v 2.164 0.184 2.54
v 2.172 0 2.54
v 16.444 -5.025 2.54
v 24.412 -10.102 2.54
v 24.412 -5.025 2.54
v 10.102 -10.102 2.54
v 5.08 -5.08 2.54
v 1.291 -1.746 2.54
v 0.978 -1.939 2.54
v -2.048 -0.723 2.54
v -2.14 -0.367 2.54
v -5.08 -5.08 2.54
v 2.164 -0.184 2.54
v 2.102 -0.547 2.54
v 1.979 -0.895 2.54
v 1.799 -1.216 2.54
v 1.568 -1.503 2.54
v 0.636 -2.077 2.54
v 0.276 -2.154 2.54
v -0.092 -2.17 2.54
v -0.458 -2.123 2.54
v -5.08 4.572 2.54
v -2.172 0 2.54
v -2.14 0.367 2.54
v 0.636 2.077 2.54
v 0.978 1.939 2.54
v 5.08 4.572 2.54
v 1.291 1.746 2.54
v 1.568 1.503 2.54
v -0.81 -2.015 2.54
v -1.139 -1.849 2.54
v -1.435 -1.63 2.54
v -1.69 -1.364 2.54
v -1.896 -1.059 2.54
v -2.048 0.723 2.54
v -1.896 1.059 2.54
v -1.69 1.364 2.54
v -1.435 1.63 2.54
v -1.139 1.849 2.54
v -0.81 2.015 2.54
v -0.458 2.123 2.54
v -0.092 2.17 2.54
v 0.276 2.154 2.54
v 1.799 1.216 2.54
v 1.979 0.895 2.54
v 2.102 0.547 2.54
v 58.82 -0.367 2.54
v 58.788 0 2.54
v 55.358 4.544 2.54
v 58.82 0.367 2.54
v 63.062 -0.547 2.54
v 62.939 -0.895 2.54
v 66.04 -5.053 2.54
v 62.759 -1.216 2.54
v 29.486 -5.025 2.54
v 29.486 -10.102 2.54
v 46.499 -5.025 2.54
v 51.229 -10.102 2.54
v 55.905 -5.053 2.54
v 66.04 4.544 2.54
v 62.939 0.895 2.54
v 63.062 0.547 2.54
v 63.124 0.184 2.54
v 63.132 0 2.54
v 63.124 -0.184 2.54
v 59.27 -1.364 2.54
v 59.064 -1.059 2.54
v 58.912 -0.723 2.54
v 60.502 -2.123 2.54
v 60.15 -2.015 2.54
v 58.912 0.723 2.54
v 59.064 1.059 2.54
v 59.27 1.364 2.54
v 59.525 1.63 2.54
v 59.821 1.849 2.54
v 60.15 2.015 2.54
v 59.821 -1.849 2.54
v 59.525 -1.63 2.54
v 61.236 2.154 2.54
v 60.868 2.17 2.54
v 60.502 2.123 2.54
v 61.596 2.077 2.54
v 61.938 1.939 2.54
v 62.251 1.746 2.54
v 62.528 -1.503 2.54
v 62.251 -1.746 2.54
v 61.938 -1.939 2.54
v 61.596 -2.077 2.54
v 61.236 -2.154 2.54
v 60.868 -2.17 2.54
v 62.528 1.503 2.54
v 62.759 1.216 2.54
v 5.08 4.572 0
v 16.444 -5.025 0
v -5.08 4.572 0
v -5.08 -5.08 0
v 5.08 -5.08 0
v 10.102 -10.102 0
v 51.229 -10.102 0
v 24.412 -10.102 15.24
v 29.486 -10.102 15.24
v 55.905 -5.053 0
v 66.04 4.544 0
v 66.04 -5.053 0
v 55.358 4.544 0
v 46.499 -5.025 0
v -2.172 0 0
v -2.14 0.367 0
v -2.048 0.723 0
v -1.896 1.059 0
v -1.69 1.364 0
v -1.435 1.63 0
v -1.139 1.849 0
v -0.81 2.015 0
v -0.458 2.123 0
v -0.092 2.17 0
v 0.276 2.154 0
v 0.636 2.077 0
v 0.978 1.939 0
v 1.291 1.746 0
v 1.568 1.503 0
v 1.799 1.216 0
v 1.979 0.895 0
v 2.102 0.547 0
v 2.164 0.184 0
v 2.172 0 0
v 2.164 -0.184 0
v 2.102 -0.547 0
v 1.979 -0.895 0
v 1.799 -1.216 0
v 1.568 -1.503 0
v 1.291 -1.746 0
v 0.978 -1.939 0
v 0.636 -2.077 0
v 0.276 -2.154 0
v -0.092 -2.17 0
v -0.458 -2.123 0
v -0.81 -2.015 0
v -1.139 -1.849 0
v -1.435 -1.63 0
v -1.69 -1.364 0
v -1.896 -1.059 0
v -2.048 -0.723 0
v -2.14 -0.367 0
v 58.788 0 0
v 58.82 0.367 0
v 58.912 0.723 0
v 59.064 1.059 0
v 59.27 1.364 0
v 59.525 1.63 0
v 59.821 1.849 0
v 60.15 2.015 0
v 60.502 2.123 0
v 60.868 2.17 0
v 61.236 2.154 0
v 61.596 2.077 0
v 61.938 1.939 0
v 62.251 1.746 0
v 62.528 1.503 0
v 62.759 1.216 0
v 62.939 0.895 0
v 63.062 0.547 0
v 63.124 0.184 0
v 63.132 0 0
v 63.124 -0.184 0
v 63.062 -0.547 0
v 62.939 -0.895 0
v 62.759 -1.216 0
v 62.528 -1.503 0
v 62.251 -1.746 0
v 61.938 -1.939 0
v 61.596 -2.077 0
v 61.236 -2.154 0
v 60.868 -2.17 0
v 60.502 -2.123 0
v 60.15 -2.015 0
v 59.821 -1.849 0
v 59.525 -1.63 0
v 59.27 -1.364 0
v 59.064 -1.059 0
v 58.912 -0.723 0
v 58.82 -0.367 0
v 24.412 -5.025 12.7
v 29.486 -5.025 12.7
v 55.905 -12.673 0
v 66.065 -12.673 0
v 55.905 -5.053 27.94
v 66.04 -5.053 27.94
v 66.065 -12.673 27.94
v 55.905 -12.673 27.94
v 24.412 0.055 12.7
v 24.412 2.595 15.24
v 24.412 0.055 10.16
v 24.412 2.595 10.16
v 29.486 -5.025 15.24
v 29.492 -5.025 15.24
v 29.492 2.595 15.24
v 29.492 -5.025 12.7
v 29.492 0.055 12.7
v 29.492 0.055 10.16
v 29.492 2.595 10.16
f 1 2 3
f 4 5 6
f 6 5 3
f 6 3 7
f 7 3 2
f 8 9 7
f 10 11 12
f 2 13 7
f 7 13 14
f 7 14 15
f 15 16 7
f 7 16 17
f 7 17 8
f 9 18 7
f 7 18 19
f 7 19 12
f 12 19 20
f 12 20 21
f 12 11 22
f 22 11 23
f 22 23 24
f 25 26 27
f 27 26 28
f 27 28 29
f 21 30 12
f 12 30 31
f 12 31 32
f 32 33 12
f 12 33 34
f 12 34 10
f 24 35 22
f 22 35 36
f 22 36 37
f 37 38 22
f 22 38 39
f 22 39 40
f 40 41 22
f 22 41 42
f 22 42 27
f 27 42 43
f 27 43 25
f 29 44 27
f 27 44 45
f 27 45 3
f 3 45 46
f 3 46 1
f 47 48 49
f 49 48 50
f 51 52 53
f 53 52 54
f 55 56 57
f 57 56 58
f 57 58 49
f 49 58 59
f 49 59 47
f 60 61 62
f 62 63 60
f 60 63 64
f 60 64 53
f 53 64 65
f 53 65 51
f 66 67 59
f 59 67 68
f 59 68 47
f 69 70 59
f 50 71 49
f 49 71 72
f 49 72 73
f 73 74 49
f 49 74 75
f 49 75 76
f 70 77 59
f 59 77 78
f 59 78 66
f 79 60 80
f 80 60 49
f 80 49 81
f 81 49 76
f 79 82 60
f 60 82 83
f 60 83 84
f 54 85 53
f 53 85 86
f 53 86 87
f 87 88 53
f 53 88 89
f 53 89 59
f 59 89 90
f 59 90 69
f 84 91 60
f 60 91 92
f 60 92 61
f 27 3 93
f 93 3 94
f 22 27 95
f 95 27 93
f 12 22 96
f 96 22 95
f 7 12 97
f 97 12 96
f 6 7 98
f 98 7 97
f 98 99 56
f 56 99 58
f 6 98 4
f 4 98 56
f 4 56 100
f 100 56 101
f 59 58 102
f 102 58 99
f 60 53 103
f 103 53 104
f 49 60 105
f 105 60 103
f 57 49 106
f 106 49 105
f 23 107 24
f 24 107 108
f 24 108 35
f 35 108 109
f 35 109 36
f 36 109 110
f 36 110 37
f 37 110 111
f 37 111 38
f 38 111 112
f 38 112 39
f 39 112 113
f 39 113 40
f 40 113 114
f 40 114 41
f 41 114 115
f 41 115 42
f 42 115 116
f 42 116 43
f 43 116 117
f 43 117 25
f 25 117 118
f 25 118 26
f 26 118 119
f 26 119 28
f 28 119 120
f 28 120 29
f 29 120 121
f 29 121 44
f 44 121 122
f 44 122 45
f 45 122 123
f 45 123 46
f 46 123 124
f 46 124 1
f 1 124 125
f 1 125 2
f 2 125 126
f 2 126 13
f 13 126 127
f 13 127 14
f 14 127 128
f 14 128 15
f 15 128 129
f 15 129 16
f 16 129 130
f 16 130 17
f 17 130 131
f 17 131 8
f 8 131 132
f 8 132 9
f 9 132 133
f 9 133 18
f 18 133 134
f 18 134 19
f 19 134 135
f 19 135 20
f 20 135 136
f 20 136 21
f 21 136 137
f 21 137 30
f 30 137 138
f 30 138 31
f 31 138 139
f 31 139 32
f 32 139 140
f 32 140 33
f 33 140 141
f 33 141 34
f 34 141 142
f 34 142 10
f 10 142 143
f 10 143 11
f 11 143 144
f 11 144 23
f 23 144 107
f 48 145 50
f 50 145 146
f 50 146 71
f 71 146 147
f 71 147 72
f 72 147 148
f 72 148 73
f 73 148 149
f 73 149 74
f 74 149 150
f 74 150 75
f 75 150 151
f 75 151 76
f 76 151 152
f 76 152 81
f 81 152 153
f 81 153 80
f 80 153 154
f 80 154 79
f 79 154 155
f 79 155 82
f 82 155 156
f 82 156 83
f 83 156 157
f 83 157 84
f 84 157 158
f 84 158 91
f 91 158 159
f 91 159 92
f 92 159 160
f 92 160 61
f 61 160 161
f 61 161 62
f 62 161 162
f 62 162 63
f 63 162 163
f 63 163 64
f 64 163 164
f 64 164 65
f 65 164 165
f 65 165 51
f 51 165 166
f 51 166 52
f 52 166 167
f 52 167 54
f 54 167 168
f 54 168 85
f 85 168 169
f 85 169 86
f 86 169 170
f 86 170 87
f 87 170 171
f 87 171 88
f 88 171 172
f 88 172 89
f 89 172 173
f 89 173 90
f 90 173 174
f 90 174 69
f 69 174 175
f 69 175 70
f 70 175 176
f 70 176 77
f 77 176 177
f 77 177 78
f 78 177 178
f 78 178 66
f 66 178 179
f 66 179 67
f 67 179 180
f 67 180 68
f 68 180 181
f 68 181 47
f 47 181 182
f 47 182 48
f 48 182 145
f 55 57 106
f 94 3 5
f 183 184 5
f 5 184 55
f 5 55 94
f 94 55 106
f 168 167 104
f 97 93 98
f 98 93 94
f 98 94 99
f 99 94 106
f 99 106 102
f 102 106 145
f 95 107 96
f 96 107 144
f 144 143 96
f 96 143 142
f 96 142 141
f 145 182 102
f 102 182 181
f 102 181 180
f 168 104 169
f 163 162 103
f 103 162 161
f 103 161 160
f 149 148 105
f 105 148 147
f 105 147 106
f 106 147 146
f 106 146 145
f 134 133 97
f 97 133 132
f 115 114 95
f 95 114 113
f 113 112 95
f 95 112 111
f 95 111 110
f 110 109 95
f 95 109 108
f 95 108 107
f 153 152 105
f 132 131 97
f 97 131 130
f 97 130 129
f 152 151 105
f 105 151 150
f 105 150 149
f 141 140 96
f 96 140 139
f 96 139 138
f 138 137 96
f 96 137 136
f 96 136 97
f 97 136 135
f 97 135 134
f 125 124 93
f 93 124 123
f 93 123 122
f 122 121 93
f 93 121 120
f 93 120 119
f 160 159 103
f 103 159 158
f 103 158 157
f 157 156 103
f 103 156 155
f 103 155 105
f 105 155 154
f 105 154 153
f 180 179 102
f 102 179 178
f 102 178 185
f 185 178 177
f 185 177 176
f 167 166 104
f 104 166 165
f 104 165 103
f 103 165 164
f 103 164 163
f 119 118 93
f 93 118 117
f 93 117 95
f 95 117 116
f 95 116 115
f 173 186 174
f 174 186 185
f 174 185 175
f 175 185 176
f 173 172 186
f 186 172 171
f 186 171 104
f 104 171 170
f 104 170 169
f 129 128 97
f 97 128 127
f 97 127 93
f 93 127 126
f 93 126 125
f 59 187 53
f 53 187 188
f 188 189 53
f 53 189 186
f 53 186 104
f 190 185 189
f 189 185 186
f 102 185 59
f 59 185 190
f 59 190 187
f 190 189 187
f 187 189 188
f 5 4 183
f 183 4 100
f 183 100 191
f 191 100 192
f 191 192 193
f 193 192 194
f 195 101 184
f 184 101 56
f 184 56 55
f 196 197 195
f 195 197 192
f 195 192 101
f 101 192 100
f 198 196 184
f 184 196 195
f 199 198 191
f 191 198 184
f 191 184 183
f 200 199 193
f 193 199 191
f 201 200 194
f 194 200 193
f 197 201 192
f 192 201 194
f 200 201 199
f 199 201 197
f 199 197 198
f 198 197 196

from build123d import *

# Parameters (mm, degrees)
SKETCH1_R                = 2.1717
BOSS_EXTRUDE2_DEPTH      = 2.54
BOSS_EXTRUDE3_DEPTH      = 25.4
BOSS_EXTRUDE3_DEPTH_BACK = 2.54
SKETCH3_W                = 5.074384234
SKETCH3_H                = 5.076844133
BOSS_EXTRUDE4_DEPTH      = 12.7
BOSS_EXTRUDE5_DEPTH      = 5.08


with BuildPart() as part:
    # Sketch1 → Boss-Extrude2 (new body)
    with BuildSketch(Plane.XY):
        Polygon((5.08, -5.08), (-5.08, -5.08), (-5.08, 4.572), (5.08, 4.572), (16.444283816, -5.025270266), (46.498564563, -5.025270266), (55.358360552, 4.543956213), (66.03999997, 4.543956213), (66.03999997, -5.052635133), (55.90534362, -5.052635133), (51.228827675, -10.102114399), (10.102114399, -10.102114399), align=None)
        Circle(SKETCH1_R, mode=Mode.SUBTRACT)
        with Locations((60.96, 0)):
            Circle(SKETCH1_R, mode=Mode.SUBTRACT)
    extrude(amount=BOSS_EXTRUDE2_DEPTH)

    # Sketch2 → Boss-Extrude3 (add, two sides: drawn at the far end of the back side and taken through both)
    with BuildSketch(Plane.XY.offset(2.54).offset(-BOSS_EXTRUDE3_DEPTH_BACK)):
        Polygon((55.90534362, -5.052635133), (55.90534362, -12.672635133), (66.06534362, -12.672635133), (66.03999997, -5.052635133), align=None)
    extrude(amount=BOSS_EXTRUDE3_DEPTH + BOSS_EXTRUDE3_DEPTH_BACK)

    # Sketch3 → Boss-Extrude4 (add)
    with BuildSketch(Plane.XY.offset(2.54)):
        with Locations((26.948840143, -7.563692333)):
            Rectangle(SKETCH3_W, SKETCH3_H)
    extrude(amount=BOSS_EXTRUDE4_DEPTH)

    # Sketch5 → Boss-Extrude5 (add)
    with BuildSketch(Plane.ZY.offset(-24.411648026)):
        Polygon((15.24, -5.025270266), (15.24, 2.594729734), (12.699847587, 2.594729734), (10.159847587, 2.594729734), (10.159847587, 0.054729734), (12.699847587, 0.054729734), (12.699847587, -5.025270266), align=None)
    extrude(amount=-BOSS_EXTRUDE5_DEPTH)


solid = part.part
